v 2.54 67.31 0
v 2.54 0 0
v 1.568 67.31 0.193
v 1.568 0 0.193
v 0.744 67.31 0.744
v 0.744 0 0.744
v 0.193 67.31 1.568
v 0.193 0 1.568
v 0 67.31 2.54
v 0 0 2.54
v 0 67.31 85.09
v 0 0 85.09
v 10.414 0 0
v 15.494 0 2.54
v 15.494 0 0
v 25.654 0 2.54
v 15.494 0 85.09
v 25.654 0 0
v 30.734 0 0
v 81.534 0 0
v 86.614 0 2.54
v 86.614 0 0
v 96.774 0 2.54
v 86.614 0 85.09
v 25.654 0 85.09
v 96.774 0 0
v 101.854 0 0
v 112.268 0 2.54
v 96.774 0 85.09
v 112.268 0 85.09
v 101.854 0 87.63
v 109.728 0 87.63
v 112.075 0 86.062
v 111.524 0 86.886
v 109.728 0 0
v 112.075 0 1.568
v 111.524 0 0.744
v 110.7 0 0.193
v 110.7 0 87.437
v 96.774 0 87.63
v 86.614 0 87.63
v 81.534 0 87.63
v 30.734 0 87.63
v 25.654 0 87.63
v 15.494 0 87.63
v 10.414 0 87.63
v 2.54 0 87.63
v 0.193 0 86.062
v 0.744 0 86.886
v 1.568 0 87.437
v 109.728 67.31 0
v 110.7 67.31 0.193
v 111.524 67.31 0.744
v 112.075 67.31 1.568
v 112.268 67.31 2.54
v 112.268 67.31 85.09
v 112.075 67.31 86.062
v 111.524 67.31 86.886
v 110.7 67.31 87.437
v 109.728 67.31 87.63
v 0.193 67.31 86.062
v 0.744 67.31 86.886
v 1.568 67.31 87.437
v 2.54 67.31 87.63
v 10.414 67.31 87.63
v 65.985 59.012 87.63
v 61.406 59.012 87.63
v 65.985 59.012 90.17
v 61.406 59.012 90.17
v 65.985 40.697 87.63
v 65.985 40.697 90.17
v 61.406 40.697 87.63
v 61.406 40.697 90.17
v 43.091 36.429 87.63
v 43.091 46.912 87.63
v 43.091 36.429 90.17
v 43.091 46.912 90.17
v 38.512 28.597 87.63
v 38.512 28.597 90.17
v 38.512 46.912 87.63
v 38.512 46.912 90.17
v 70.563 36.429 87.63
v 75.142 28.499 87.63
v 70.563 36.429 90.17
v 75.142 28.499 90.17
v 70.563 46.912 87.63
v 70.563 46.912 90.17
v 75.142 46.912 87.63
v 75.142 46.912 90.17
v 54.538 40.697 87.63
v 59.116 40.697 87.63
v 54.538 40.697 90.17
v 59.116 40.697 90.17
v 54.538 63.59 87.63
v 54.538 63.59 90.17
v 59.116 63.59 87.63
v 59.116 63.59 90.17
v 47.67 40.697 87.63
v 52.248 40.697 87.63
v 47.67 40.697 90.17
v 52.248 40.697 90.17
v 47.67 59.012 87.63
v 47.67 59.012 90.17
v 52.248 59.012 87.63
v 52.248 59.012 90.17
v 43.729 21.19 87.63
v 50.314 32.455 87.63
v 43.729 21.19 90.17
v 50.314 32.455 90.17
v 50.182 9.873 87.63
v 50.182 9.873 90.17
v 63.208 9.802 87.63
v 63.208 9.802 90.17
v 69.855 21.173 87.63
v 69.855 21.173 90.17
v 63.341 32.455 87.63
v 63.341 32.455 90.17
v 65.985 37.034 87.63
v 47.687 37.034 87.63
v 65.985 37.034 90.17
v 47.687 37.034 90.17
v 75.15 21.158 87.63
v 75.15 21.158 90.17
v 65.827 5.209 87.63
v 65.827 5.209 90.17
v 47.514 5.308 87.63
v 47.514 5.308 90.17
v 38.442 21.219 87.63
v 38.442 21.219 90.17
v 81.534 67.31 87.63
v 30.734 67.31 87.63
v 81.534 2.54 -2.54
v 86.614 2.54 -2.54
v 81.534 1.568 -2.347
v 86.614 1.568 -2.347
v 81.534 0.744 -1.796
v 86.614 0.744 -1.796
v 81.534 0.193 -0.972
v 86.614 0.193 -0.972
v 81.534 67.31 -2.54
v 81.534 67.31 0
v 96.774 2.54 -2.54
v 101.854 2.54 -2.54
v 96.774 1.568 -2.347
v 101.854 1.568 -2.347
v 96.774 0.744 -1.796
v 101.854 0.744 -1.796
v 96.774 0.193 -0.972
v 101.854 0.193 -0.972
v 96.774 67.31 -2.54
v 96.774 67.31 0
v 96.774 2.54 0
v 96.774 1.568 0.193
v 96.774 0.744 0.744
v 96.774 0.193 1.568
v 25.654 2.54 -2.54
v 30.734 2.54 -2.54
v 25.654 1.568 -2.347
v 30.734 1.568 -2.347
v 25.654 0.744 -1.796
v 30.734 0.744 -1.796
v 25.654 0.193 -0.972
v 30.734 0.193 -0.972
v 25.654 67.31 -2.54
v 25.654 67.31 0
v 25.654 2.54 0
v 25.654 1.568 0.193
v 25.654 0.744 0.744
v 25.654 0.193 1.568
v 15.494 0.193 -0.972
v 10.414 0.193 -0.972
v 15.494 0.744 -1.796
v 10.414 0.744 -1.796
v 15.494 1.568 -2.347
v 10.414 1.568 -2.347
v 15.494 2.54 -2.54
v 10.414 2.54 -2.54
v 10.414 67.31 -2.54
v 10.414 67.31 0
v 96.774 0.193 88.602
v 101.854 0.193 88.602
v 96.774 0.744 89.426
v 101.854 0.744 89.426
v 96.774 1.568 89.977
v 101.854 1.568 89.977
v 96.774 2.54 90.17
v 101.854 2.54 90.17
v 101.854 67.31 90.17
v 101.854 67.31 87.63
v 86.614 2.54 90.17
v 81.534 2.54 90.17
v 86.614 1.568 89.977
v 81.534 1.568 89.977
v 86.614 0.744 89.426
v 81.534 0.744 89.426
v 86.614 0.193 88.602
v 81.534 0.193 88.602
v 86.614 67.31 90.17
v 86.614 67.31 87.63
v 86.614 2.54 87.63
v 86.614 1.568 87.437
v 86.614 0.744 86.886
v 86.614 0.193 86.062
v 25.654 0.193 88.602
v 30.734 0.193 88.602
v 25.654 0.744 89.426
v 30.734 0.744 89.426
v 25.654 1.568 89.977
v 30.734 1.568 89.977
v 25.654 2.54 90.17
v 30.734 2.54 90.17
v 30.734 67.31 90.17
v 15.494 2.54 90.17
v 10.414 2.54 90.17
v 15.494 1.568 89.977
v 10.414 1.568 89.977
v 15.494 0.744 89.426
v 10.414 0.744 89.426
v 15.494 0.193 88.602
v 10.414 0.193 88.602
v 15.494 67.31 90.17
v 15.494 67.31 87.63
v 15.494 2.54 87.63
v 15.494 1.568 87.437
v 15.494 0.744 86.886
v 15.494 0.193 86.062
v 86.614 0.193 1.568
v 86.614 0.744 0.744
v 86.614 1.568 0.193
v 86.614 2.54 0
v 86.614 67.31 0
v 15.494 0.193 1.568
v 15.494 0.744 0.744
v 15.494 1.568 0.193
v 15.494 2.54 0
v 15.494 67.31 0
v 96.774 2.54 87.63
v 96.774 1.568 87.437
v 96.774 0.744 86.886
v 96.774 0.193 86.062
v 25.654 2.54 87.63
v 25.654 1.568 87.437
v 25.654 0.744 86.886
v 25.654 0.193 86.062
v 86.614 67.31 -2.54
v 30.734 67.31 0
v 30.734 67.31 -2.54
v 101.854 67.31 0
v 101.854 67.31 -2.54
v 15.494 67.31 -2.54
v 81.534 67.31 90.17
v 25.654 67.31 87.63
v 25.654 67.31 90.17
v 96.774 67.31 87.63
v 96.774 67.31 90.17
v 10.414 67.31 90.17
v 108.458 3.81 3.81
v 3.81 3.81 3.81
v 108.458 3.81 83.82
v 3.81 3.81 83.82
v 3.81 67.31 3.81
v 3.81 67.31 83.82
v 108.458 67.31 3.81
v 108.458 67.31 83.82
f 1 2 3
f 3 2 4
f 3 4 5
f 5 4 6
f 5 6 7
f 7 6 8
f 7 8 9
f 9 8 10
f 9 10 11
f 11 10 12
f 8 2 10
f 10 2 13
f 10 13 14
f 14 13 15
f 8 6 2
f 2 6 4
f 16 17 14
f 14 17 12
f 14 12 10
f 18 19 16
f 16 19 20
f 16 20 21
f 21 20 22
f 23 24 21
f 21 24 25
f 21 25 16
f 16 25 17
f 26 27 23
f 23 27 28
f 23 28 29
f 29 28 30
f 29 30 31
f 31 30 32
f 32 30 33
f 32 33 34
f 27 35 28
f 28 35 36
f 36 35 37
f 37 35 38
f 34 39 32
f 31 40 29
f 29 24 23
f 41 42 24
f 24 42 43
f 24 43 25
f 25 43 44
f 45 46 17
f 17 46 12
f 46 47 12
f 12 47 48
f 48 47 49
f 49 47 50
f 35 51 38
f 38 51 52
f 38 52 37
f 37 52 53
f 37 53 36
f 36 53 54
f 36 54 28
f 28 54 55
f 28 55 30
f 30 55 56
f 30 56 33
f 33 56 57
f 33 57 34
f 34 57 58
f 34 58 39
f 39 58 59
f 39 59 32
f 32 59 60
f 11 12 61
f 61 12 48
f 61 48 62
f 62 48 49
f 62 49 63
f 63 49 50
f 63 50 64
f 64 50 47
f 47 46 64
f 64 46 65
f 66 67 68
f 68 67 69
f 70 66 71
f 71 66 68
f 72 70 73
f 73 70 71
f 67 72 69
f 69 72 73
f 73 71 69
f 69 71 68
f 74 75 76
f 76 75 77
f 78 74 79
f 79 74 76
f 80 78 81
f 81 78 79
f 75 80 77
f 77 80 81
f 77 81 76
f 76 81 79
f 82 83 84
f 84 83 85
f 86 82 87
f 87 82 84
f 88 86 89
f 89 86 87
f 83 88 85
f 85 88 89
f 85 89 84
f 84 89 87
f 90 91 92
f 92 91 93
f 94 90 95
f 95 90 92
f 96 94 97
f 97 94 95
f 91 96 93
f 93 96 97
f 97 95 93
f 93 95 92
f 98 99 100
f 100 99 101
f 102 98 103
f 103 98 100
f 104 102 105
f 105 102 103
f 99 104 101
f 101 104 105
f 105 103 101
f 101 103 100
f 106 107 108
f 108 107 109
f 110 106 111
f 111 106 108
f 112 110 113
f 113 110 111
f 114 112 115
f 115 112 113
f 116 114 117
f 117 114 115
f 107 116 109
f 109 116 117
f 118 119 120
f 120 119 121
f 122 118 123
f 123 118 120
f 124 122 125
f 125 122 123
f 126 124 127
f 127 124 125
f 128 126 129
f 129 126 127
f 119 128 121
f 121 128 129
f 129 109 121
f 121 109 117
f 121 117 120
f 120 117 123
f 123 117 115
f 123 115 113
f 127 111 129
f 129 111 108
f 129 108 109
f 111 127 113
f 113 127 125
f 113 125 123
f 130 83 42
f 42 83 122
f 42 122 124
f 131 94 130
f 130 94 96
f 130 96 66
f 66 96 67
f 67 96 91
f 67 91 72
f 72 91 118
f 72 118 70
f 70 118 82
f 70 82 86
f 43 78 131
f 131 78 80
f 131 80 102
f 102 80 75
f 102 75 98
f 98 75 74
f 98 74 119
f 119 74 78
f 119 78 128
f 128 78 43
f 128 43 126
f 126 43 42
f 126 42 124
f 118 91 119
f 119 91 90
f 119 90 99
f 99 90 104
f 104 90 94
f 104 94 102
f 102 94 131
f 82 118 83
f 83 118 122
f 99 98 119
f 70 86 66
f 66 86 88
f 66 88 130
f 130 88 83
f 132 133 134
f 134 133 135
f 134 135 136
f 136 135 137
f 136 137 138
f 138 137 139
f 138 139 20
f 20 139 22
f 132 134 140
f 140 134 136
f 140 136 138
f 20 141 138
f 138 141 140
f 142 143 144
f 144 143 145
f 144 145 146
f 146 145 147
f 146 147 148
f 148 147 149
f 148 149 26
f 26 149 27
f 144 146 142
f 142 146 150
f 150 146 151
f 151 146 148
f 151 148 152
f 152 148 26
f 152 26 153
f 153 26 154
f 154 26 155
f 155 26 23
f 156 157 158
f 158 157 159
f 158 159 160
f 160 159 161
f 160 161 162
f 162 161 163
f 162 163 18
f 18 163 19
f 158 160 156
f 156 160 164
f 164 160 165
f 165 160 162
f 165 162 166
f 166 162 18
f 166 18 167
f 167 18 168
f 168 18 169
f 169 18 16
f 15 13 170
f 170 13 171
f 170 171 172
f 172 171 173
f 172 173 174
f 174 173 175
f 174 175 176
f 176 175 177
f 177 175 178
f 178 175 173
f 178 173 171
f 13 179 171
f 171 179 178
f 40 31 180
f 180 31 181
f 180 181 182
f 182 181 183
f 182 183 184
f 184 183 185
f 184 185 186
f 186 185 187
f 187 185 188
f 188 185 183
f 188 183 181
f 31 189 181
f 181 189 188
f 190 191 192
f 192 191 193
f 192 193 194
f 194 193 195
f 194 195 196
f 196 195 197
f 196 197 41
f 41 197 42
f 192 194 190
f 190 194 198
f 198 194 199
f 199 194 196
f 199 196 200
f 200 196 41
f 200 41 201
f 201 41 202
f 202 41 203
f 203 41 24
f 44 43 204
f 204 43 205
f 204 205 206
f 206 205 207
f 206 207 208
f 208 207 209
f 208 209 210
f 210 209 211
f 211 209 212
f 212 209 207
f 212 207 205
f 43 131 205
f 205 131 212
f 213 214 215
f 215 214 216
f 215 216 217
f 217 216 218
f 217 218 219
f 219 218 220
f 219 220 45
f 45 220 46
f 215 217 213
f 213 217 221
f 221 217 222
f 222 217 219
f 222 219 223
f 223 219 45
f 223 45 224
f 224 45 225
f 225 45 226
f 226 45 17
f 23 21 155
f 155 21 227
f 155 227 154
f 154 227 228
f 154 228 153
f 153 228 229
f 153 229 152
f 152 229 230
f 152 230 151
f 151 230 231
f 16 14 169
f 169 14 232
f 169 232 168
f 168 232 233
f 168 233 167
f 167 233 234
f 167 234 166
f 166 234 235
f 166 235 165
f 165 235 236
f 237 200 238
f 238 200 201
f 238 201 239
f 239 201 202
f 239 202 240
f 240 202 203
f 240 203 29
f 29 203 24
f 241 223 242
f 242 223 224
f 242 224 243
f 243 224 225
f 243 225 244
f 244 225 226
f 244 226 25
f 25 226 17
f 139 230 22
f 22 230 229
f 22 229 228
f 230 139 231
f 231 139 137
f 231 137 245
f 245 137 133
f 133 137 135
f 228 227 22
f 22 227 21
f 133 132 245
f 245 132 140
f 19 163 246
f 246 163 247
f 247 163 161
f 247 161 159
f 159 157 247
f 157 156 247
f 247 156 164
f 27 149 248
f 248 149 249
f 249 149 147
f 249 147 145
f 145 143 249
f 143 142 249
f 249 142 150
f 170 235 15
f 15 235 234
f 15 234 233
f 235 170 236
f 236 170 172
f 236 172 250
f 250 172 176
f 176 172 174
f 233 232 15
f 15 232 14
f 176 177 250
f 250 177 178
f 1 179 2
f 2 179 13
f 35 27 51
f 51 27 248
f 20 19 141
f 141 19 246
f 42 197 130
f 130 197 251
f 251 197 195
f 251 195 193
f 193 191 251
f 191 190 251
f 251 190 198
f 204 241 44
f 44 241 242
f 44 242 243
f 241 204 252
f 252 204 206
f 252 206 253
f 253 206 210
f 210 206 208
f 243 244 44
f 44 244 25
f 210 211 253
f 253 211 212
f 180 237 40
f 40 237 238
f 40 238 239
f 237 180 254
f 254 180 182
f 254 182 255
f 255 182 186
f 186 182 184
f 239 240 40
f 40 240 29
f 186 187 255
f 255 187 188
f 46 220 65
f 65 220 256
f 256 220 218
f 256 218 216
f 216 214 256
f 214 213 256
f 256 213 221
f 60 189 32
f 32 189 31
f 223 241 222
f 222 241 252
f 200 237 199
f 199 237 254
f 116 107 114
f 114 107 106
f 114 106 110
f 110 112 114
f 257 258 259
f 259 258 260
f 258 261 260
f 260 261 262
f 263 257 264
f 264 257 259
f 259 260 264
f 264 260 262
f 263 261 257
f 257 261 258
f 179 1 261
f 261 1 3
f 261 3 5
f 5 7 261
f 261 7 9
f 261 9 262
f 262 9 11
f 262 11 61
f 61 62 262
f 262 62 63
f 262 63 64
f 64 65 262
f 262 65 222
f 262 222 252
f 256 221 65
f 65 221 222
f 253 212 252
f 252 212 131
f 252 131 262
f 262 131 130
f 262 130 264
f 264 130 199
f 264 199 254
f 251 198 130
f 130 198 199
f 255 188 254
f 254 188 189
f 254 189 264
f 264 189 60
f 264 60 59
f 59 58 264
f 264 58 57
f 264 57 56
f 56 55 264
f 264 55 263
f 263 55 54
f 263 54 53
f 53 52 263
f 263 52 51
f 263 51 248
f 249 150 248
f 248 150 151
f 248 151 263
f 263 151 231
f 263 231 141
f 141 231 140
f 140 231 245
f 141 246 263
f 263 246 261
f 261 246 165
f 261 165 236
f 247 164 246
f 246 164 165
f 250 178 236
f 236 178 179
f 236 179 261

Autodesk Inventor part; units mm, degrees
ref_plane "YZ Plane" through (0, 0, 0) normal (1, 0, 0) x (0, 1, 0)
ref_plane "XZ Plane" through (0, 0, 0) normal (0, 1, 0) x (-1, 0, 0)
sketch "Sketch1" plane through (0, 0, 0) normal (0, 0, 1) x (1, 0, 0)
  line L0 (0, 0) -> (112.268, 0)
  line L1 (112.268, 0) -> (112.268, 67.31)
  line L2 (112.268, 67.31) -> (0, 67.31)
  line L3 (0, 67.31) -> (0, 0)
  dimension "d0" = 112.268
  dimension "d1" = 67.31
extrude "Extrusion1" add sketch "Sketch1" along normal blind 87.63
shell "Shell1" thickness 3.81 removed faces 1 at (74.8453, 67.31, 29.21)
sketch "Sketch2" plane through (0, 0, 87.63) normal (0, 0, 1) x (1, 0, 0)
  line L0 (112.268, 67.31) -> (0, 67.31) projected
  line L1 (0, 0) -> (112.268, 0) projected
  line L2 (10.414, 67.31) -> (15.494, 67.31)
  line L3 (15.494, 67.31) -> (15.494, 0)
  line L4 (15.494, 0) -> (10.414, 0)
  line L5 (10.414, 0) -> (10.414, 67.31)
  line L6 (25.654, 0) -> (30.734, 0)
  line L7 (30.734, 0) -> (30.734, 67.31)
  line L8 (30.734, 67.31) -> (25.654, 67.31)
  line L9 (25.654, 67.31) -> (25.654, 0)
  line L10 (86.614, 67.31) -> (81.534, 67.31)
  line L11 (81.534, 67.31) -> (81.534, 0)
  line L12 (81.534, 0) -> (86.614, 0)
  line L13 (86.614, 0) -> (86.614, 67.31)
  line L14 (96.774, 0) -> (101.854, 0)
  line L15 (101.854, 0) -> (101.854, 67.31)
  line L16 (101.854, 67.31) -> (96.774, 67.31)
  line L17 (96.774, 67.31) -> (96.774, 0)
  point P0 (56.134, 0)
  dimension "d5" = 5.08
  dimension "d6" = 5.08
  dimension "d7" = 5.08
  dimension "d8" = 5.08
  dimension "d9" = 10.16
  dimension "d10" = 10.16
  dimension "d11" = 50.8
  dimension "d12" = 25.4
extrude "Extrusion2" add sketch "Sketch2" along normal blind 2.54 contours L15 L1 L17 L0 | L13 L1 L11 L0 | L7 L1 L9 L0 | L3 L1 L5 L0
ref_plane "Work Plane1" through (0, 0, 43.815) normal (0, 0, 1) x (1, 0, 0)
mirror "Mirror1" about plane through (0, 0, 43.815) normal (0, 0, 1) of "Extrusion2"
fillet "Fillet1" radius 2.54 12 edges at (12.954, 0, 90.17) (28.194, 0, 90.17) (20.574, 0, 87.63) (84.074, 0, 90.17) (91.694, 0, 87.63) (99.314, 0, 90.17) (12.954, 0, -2.54) (20.574, 0, 0) (28.194, 0, -2.54) (91.694, 0, 0) (99.314, 0, -2.54) (84.074, 0, -2.54)
sketch "Sketch3" plane through (0, 0, 87.63) normal (0, 0, 1) x (1, 0, 0)
  line L0 (65.8267, 5.2092) -> (47.5136, 5.3082)
  line L1 (47.5136, 5.3082) -> (38.4421, 21.2186)
  line L2 (38.4421, 21.2186) -> (47.6874, 37.0338)
  line L3 (47.6874, 37.0338) -> (65.9845, 37.0338)
  line L4 (65.9845, 37.0338) -> (75.1503, 21.1582)
  line L5 (75.1503, 21.1582) -> (65.8267, 5.2092)
  line L6 (50.3144, 32.4551) -> (43.729, 21.19)
  line L7 (43.729, 21.19) -> (50.1818, 9.8726)
  line L8 (50.1818, 9.8726) -> (63.208, 9.8021)
  line L9 (63.208, 9.8021) -> (69.855, 21.1725)
  line L10 (69.855, 21.1725) -> (63.341, 32.4551)
  line L11 (63.341, 32.4551) -> (50.3144, 32.4551)
  line L12 (38.5123, 28.5967) -> (38.5123, 46.9115)
  line L13 (38.5123, 46.9115) -> (43.091, 46.9115)
  line L14 (43.091, 46.9115) -> (43.091, 36.4292)
  line L15 (43.091, 36.4292) -> (38.5123, 28.5967)
  line L16 (47.6697, 59.0116) -> (52.2484, 59.0116)
  line L17 (52.2484, 59.0116) -> (52.2484, 40.6967)
  line L18 (65.9845, 40.6967) -> (65.9845, 59.0116)
  line L19 (65.9845, 59.0116) -> (61.4058, 59.0116)
  line L20 (61.4058, 59.0116) -> (61.4058, 40.6967)
  line L21 (75.1419, 28.4986) -> (75.1419, 46.9115)
  line L22 (75.1419, 46.9115) -> (70.5632, 46.9115)
  line L23 (70.5632, 46.9115) -> (70.5632, 36.4292)
  line L24 (70.5632, 36.4292) -> (75.1419, 28.4986)
  line L25 (54.5377, 63.5903) -> (54.5377, 40.6967)
  line L26 (54.5377, 40.6967) -> (59.1164, 40.6967)
  line L27 (59.1164, 40.6967) -> (59.1164, 63.5903)
  line L28 (59.1164, 63.5903) -> (54.5377, 63.5903)
  line L29 (61.4058, 40.6967) -> (65.9845, 40.6967)
  line L30 (52.2484, 59.0116) -> (54.5377, 59.0116) construction
  line L31 (61.4058, 59.0116) -> (59.1164, 59.0116) construction
  line L32 (47.6697, 59.0116) -> (47.6697, 40.6967)
  line L33 (47.6697, 40.6967) -> (52.2484, 40.6967)
  line L34 (81.534, 67.31) -> (81.534, 2.54) projected
  point P0 (0, 0)
  point P1 (56.3847, 20.5734)
  point P2 (56.6949, 9.8373)
  dimension "d16" = 18.3134
  dimension "d17" = 4.5787
  dimension "d18" = 3.663
  dimension "d19" = 3.663
  dimension "d20" = 4.5787
  dimension "d21" = 4.5787
  dimension "d22" = 4.5787
  dimension "d23" = 4.5787
  dimension "d24" = 3.663
  dimension "d25" = 18.3148
  dimension "d26" = 18.3148
  dimension "d27" = 22.8935
  dimension "d28" = 4.5787
  dimension "d29" = 4.5787
  dimension "d30" = 4.5787
  dimension "d31" = 2.2894
  dimension "d32" = -4.5964
  dimension "d33" = 24.8391
extrude "Extrusion3" add sketch "Sketch3" along normal blind 2.54
fillet "Fillet2" radius 2.54 4 edges at (0, 33.655, 87.63) (112.268, 33.655, 87.63) (112.268, 33.655, 0) (0, 33.655, 0)
equation "\"d5\" = d6"
equation "\"d7\" = d6"
equation "\"d8\" = d7"
equation "\"d10\" = d9"
properties part number "Janus wire holder"
